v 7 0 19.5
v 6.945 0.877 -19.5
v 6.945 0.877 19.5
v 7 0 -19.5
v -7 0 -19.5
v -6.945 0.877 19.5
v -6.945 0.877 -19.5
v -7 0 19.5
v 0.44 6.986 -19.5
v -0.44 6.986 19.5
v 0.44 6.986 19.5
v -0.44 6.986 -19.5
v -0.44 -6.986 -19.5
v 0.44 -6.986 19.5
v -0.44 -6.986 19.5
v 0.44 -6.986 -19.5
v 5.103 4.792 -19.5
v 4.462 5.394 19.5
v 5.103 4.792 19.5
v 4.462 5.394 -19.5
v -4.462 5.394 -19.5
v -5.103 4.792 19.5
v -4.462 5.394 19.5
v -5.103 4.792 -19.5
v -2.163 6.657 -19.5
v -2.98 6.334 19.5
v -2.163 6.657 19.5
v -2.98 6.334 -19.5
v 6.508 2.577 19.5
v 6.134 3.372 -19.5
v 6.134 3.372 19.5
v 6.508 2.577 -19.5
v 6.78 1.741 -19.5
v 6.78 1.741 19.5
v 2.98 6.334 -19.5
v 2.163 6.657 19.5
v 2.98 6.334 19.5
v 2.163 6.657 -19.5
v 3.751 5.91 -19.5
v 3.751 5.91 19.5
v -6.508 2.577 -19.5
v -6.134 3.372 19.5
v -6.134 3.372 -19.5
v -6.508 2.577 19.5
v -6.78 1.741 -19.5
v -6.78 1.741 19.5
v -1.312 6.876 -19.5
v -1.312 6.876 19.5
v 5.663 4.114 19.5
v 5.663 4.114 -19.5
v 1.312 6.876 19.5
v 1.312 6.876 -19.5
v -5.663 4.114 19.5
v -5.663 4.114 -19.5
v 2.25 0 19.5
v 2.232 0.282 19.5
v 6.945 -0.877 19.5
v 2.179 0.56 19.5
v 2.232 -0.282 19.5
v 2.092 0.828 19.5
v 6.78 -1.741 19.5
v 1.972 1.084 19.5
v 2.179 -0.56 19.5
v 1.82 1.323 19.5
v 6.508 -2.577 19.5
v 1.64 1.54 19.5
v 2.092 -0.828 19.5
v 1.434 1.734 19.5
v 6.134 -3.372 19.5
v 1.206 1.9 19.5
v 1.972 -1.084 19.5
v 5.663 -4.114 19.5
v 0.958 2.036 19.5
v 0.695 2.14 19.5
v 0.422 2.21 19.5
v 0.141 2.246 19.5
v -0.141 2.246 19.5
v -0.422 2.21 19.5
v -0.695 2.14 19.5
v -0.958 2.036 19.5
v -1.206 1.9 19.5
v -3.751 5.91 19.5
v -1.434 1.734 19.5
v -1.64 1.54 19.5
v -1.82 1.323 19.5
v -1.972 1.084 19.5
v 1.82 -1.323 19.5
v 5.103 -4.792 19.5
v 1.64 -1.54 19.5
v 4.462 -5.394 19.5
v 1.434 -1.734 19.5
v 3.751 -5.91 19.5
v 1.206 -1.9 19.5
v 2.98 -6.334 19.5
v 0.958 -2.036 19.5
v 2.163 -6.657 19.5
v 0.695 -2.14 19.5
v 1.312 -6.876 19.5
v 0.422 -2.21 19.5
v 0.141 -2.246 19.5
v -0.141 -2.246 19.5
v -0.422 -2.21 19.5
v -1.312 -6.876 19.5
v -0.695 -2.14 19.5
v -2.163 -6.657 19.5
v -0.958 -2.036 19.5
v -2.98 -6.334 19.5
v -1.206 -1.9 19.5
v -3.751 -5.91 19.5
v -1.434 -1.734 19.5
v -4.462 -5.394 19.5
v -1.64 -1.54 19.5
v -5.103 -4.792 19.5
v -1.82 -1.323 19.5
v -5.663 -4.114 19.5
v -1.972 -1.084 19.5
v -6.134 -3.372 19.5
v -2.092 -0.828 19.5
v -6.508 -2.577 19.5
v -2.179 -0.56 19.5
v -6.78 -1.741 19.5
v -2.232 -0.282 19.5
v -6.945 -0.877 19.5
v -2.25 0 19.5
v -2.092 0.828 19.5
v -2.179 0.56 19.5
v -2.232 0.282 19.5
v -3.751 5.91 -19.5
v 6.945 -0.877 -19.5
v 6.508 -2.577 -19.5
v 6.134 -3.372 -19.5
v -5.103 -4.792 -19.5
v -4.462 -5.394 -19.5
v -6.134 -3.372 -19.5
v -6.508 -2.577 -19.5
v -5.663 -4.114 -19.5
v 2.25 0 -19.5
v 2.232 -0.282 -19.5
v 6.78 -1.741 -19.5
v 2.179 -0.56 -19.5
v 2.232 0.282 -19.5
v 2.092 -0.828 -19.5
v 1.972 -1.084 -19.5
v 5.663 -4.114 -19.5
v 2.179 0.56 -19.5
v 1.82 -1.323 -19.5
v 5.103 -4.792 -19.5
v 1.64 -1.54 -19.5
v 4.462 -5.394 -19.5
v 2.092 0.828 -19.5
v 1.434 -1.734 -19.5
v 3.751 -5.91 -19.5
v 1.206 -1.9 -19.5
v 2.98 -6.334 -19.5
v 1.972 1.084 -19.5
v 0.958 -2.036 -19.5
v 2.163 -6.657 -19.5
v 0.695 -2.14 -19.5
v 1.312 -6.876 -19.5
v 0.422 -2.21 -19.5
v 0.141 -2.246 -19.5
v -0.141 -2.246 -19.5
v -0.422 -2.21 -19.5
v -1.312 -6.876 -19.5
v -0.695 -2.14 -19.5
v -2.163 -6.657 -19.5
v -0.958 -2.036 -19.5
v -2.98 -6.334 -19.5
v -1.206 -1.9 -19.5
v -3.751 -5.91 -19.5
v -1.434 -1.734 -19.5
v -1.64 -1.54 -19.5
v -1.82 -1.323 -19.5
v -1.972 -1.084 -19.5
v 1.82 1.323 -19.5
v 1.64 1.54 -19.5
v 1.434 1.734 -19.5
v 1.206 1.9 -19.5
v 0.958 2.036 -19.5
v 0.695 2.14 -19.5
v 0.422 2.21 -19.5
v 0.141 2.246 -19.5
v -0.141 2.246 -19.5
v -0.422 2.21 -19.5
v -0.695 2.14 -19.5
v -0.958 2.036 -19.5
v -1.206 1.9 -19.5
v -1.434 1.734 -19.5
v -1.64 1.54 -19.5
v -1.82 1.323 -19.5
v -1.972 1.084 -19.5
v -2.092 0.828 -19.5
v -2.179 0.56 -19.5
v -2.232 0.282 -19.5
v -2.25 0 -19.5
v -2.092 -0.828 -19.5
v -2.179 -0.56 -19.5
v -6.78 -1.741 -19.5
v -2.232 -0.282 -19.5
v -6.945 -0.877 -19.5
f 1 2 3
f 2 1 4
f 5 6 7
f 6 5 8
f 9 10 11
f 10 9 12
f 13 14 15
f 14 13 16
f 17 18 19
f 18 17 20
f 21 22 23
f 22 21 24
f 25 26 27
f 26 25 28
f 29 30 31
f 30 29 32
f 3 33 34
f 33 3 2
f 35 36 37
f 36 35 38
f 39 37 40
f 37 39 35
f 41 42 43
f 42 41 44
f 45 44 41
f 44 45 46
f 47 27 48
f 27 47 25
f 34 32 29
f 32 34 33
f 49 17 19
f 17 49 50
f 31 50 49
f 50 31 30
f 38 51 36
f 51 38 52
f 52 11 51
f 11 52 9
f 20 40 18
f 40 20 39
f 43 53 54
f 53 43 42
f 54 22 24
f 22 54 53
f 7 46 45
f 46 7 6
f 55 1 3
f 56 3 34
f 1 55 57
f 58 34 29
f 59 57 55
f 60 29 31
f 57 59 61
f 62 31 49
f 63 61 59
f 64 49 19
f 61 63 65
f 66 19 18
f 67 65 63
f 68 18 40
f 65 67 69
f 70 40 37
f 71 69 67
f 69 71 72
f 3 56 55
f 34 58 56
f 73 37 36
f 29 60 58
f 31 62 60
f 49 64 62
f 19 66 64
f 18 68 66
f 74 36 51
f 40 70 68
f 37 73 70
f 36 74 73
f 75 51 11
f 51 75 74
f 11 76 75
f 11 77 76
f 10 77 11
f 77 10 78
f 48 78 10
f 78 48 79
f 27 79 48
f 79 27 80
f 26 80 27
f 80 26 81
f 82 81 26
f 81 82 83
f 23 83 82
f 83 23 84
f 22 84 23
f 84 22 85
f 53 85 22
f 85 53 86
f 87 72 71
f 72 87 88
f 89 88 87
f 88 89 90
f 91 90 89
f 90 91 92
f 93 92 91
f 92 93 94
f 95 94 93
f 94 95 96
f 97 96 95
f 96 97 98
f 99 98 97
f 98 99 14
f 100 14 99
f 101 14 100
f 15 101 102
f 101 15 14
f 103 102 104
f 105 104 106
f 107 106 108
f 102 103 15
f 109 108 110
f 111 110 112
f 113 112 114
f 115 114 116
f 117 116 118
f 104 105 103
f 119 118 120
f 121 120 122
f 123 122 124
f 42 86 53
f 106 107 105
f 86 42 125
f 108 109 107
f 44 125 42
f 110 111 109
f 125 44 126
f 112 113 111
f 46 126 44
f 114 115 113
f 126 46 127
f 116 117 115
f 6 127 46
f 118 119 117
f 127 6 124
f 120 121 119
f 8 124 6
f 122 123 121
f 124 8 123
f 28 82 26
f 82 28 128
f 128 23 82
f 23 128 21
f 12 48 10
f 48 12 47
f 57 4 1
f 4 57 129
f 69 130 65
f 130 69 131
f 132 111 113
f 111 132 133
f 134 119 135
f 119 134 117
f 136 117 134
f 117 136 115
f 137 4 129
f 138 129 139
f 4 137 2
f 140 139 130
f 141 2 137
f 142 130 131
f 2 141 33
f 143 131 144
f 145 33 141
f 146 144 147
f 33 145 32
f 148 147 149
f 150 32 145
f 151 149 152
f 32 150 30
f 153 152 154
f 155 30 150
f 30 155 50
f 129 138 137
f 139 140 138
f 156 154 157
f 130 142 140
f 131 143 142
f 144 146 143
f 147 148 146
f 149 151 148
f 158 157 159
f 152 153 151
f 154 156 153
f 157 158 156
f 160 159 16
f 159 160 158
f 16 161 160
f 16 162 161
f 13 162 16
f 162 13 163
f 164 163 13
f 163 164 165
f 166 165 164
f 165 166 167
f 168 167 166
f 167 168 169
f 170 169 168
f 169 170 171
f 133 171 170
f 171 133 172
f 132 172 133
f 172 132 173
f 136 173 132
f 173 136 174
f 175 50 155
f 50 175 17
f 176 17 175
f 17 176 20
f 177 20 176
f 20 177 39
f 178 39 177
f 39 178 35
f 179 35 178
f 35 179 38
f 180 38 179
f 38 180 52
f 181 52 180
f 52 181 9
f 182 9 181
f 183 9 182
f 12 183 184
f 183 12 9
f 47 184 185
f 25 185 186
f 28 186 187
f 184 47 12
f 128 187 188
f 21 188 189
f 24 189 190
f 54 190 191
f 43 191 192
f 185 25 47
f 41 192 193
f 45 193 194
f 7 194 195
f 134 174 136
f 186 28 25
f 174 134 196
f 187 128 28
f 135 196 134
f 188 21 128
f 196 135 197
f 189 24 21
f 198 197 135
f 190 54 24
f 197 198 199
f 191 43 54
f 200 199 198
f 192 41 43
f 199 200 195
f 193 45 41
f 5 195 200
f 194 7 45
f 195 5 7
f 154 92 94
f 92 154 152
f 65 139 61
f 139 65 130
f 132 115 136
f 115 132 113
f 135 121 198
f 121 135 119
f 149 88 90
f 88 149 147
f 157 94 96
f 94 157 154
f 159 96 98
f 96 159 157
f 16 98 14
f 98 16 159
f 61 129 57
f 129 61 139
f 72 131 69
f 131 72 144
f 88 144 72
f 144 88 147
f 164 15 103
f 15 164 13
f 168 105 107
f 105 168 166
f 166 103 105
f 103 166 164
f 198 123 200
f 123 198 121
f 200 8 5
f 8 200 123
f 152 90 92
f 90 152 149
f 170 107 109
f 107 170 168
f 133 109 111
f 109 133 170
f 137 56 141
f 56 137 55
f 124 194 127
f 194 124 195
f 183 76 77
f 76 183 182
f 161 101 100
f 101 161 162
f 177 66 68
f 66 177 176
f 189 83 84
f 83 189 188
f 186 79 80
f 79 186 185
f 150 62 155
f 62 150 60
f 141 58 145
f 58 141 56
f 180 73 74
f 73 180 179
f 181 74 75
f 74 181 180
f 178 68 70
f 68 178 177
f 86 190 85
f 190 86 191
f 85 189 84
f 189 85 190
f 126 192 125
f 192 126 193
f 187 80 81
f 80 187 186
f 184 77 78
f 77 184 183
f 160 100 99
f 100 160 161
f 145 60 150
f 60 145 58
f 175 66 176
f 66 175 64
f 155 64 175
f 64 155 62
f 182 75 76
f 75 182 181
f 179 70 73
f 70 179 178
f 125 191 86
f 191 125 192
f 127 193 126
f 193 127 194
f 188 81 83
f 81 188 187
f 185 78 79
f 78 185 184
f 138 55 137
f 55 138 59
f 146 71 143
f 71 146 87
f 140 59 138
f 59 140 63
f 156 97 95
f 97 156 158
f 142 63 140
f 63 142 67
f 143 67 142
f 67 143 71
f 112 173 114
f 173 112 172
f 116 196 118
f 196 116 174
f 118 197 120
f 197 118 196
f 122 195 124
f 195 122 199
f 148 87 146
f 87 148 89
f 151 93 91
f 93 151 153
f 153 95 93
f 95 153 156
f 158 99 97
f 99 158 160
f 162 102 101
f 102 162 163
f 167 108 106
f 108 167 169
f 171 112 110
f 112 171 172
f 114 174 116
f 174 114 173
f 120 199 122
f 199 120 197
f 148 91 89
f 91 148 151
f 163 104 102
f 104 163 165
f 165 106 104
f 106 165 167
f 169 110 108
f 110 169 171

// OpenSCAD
$fn = 50;


difference() {
	union() {
		translate(v = [0, 0, -19.5000000000]) {
			cylinder(h = 39, r = 7.0000000000);
		}
	}
	union() {
		translate(v = [0, 0, -100.0000000000]) {
			cylinder(h = 200, r = 2.2500000000);
		}
	}
}
